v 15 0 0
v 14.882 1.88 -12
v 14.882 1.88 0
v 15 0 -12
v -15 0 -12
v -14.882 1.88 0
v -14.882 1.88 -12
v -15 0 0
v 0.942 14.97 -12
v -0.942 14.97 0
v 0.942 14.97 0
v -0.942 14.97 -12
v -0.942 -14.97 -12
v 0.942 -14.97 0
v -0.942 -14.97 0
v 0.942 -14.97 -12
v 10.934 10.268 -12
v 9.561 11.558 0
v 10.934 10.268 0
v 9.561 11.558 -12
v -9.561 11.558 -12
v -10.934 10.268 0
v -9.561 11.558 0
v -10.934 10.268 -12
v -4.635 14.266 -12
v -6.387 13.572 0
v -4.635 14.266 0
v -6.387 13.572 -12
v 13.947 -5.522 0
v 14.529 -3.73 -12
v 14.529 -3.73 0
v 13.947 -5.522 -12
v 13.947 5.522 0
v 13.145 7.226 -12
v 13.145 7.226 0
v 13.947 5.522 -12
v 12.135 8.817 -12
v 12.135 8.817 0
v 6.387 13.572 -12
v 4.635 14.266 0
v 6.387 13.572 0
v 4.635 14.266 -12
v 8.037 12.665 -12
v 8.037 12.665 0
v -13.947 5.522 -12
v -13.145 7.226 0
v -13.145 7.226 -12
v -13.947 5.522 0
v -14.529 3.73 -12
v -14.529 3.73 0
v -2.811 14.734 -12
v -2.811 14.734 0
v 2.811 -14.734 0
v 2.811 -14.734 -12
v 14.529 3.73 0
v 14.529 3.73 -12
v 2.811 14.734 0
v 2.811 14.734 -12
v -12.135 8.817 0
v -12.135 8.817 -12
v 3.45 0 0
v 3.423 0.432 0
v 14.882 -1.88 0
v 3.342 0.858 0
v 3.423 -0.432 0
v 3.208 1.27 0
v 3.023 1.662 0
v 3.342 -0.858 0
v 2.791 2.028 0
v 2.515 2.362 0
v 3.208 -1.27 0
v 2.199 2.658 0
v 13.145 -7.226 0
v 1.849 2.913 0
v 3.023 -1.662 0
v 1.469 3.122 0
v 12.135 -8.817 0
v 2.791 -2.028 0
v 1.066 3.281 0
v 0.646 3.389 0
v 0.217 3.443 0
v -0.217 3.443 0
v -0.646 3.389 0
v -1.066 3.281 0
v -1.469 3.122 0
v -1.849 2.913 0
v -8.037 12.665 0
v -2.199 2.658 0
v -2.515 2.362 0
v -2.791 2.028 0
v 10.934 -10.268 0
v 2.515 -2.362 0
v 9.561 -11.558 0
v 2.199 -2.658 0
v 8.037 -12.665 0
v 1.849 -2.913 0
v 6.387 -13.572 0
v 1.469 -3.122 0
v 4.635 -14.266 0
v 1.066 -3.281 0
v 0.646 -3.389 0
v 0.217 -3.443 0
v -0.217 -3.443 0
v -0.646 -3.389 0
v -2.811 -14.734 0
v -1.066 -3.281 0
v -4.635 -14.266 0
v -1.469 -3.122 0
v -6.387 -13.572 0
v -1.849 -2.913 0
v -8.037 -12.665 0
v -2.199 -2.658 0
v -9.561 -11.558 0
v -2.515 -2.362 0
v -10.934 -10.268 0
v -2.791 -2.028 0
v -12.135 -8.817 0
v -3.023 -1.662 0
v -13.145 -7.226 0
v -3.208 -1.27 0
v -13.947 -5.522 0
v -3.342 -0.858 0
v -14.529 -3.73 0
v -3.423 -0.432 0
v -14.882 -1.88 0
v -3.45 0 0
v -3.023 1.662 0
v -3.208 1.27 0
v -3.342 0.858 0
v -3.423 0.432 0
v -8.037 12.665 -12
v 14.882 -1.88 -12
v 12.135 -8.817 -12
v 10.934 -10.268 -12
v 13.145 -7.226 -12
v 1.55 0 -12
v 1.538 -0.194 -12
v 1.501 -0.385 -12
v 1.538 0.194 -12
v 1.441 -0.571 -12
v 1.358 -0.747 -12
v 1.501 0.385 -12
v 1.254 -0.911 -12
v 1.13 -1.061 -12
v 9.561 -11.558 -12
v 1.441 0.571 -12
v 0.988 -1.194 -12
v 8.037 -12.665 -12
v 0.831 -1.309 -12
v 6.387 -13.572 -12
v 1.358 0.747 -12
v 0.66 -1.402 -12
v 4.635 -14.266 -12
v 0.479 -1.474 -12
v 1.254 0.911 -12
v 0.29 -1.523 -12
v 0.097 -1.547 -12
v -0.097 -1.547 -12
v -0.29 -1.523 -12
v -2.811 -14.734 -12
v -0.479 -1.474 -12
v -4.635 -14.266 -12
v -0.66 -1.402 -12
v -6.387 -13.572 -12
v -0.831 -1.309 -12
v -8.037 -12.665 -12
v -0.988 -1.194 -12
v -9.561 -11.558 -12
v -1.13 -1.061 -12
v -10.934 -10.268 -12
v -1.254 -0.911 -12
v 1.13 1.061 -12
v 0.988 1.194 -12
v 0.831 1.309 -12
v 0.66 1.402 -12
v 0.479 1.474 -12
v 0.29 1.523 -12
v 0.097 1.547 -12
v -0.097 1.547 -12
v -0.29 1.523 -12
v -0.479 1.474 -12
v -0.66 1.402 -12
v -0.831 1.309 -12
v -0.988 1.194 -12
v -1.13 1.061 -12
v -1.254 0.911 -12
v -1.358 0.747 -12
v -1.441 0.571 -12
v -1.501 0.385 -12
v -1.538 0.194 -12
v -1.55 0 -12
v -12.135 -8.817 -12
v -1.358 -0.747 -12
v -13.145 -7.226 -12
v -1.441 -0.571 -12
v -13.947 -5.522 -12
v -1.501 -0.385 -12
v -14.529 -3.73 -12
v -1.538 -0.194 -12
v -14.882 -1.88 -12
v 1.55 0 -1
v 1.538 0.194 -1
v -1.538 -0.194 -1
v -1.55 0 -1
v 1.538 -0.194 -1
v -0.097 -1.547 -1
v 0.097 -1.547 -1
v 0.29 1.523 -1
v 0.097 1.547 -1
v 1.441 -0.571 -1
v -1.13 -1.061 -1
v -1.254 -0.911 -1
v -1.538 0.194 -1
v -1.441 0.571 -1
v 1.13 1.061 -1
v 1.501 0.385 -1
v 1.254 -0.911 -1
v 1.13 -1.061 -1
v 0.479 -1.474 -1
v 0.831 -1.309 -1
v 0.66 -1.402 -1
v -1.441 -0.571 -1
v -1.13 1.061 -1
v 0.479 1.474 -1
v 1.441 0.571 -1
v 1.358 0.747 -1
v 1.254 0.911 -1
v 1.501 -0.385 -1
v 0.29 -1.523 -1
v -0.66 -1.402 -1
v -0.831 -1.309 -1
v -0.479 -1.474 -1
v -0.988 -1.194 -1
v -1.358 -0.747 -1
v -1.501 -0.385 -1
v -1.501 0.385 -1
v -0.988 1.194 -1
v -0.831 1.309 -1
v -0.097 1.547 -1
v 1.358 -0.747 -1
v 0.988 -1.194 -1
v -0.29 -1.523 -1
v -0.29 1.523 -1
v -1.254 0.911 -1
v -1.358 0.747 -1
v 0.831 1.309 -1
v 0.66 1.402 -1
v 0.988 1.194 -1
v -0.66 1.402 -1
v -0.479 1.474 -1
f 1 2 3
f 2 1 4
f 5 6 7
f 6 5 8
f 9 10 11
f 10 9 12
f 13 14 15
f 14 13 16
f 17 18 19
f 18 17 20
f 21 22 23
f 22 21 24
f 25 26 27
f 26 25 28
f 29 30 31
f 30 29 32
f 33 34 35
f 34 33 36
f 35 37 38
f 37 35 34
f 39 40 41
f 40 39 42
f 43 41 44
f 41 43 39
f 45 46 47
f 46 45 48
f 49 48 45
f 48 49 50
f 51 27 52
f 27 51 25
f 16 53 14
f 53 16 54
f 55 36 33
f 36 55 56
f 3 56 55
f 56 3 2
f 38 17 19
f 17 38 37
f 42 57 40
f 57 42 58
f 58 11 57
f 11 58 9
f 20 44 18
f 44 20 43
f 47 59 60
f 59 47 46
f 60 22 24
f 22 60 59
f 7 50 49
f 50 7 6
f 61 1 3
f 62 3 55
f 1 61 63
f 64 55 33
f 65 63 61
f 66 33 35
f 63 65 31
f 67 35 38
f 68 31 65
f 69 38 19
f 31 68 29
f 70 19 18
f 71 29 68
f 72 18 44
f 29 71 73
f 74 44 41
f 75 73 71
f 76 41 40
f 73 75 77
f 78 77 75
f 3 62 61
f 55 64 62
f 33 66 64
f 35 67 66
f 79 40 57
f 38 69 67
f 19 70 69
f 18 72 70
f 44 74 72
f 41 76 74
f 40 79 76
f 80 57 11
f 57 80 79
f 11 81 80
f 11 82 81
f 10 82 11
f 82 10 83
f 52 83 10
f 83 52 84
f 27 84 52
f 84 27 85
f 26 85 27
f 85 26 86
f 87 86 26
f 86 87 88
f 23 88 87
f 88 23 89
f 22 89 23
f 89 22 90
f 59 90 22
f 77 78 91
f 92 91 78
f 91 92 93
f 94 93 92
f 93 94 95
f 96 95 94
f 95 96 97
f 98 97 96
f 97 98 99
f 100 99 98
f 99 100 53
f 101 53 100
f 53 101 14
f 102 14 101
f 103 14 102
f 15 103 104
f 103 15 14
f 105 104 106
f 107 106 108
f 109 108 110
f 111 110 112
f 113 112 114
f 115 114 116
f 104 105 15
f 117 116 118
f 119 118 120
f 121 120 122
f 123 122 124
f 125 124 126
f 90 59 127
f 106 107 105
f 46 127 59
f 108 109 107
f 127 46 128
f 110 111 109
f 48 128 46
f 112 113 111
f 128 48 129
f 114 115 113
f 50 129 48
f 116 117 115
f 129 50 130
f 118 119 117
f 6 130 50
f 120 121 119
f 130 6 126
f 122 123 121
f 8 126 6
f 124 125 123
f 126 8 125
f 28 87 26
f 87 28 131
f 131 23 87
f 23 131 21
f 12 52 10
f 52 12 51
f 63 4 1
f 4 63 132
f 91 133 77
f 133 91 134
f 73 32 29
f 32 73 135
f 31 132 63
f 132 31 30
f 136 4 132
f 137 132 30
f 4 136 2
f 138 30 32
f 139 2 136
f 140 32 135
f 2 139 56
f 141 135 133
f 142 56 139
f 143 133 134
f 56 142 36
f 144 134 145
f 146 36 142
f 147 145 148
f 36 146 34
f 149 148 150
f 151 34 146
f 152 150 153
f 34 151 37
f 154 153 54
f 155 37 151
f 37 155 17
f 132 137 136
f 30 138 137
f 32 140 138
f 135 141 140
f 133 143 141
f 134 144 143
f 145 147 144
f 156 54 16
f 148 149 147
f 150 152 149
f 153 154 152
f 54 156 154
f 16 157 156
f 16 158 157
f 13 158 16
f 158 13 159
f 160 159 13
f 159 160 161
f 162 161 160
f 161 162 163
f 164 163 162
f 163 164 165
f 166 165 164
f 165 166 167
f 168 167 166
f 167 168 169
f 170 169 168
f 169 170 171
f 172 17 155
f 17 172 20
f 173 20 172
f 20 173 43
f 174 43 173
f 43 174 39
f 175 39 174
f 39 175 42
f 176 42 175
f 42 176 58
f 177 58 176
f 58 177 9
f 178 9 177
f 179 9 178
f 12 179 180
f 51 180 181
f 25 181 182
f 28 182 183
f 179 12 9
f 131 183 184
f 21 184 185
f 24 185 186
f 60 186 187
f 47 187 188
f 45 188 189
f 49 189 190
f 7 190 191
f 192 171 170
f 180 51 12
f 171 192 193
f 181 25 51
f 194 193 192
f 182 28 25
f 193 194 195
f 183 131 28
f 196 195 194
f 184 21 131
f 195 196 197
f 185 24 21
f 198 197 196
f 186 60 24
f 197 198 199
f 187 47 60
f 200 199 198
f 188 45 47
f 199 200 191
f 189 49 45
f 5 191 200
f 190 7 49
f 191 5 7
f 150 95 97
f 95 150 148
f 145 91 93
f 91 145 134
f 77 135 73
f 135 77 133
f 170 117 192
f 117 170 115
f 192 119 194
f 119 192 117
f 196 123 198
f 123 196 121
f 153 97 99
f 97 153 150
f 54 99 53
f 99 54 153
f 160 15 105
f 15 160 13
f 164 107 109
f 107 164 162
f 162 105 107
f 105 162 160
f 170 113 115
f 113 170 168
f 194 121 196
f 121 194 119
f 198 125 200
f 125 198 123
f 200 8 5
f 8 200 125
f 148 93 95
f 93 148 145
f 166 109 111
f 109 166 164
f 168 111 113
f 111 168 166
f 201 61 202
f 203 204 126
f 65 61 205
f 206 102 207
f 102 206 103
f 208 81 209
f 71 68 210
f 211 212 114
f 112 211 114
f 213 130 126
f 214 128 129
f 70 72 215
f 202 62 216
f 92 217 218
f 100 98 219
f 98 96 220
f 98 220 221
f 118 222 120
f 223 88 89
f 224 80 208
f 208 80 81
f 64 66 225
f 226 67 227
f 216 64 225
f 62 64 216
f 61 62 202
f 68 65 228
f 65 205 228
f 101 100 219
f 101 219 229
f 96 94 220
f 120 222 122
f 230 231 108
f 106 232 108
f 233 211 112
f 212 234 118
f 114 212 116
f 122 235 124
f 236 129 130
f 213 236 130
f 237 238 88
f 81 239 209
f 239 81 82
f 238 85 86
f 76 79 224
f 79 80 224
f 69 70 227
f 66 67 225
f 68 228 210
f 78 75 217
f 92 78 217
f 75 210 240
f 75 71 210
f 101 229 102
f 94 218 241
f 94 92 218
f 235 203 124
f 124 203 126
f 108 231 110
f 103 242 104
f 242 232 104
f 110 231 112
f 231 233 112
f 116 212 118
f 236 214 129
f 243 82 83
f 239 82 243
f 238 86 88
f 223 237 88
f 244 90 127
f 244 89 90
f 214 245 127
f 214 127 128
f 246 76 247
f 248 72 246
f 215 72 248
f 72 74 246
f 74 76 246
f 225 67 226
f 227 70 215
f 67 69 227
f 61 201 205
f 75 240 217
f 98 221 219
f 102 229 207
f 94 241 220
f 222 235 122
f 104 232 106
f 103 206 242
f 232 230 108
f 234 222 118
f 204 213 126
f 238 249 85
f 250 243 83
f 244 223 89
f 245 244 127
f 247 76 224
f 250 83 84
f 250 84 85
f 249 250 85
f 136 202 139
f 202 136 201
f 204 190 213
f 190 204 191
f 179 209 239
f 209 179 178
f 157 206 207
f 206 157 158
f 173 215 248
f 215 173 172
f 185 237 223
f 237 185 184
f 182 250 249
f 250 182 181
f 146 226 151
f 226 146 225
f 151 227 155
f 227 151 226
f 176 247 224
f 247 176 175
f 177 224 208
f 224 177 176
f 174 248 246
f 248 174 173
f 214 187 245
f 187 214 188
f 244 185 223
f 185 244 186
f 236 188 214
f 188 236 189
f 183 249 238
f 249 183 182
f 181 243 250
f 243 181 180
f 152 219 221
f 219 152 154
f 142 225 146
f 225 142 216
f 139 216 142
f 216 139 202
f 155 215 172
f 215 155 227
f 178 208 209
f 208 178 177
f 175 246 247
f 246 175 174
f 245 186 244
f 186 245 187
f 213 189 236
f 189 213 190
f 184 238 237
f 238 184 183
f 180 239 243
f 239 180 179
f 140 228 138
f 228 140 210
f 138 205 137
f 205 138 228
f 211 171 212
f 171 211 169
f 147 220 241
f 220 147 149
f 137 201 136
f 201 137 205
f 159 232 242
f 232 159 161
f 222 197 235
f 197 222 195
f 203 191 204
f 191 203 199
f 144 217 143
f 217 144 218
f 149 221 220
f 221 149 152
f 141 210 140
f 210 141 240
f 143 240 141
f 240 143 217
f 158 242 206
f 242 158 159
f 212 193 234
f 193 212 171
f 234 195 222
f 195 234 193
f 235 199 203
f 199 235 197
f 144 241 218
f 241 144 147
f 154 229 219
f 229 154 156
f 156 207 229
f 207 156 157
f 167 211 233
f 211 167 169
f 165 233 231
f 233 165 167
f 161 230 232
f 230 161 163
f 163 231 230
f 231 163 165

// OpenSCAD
$fn = 50;


difference() {
	union() {
		translate(v = [0, 0, -12.0000000000]) {
			cylinder(h = 12, r = 15.0000000000);
		}
		translate(v = [0, 0, -12.0000000000]) {
			cylinder(h = 12, r = 2.8750000000);
		}
	}
	union() {
		translate(v = [0, 0, 0]) {
			rotate(a = [0, 0, 0]) {
				difference() {
					union() {
						translate(v = [0, 0, -12.0000000000]) {
							cylinder(h = 12, r = 1.2500000000);
						}
						translate(v = [0, 0, -1.0000000000]) {
							cylinder(h = 1.0000000000, r1 = 1.5500000000, r2 = 3.4500000000);
						}
						translate(v = [0, 0, -12.0000000000]) {
							cylinder(h = 12, r = 1.5500000000);
						}
						translate(v = [0, 0, -12.0000000000]) {
							cylinder(h = 12, r = 1.2500000000);
						}
					}
					union();
				}
			}
		}
	}
}
